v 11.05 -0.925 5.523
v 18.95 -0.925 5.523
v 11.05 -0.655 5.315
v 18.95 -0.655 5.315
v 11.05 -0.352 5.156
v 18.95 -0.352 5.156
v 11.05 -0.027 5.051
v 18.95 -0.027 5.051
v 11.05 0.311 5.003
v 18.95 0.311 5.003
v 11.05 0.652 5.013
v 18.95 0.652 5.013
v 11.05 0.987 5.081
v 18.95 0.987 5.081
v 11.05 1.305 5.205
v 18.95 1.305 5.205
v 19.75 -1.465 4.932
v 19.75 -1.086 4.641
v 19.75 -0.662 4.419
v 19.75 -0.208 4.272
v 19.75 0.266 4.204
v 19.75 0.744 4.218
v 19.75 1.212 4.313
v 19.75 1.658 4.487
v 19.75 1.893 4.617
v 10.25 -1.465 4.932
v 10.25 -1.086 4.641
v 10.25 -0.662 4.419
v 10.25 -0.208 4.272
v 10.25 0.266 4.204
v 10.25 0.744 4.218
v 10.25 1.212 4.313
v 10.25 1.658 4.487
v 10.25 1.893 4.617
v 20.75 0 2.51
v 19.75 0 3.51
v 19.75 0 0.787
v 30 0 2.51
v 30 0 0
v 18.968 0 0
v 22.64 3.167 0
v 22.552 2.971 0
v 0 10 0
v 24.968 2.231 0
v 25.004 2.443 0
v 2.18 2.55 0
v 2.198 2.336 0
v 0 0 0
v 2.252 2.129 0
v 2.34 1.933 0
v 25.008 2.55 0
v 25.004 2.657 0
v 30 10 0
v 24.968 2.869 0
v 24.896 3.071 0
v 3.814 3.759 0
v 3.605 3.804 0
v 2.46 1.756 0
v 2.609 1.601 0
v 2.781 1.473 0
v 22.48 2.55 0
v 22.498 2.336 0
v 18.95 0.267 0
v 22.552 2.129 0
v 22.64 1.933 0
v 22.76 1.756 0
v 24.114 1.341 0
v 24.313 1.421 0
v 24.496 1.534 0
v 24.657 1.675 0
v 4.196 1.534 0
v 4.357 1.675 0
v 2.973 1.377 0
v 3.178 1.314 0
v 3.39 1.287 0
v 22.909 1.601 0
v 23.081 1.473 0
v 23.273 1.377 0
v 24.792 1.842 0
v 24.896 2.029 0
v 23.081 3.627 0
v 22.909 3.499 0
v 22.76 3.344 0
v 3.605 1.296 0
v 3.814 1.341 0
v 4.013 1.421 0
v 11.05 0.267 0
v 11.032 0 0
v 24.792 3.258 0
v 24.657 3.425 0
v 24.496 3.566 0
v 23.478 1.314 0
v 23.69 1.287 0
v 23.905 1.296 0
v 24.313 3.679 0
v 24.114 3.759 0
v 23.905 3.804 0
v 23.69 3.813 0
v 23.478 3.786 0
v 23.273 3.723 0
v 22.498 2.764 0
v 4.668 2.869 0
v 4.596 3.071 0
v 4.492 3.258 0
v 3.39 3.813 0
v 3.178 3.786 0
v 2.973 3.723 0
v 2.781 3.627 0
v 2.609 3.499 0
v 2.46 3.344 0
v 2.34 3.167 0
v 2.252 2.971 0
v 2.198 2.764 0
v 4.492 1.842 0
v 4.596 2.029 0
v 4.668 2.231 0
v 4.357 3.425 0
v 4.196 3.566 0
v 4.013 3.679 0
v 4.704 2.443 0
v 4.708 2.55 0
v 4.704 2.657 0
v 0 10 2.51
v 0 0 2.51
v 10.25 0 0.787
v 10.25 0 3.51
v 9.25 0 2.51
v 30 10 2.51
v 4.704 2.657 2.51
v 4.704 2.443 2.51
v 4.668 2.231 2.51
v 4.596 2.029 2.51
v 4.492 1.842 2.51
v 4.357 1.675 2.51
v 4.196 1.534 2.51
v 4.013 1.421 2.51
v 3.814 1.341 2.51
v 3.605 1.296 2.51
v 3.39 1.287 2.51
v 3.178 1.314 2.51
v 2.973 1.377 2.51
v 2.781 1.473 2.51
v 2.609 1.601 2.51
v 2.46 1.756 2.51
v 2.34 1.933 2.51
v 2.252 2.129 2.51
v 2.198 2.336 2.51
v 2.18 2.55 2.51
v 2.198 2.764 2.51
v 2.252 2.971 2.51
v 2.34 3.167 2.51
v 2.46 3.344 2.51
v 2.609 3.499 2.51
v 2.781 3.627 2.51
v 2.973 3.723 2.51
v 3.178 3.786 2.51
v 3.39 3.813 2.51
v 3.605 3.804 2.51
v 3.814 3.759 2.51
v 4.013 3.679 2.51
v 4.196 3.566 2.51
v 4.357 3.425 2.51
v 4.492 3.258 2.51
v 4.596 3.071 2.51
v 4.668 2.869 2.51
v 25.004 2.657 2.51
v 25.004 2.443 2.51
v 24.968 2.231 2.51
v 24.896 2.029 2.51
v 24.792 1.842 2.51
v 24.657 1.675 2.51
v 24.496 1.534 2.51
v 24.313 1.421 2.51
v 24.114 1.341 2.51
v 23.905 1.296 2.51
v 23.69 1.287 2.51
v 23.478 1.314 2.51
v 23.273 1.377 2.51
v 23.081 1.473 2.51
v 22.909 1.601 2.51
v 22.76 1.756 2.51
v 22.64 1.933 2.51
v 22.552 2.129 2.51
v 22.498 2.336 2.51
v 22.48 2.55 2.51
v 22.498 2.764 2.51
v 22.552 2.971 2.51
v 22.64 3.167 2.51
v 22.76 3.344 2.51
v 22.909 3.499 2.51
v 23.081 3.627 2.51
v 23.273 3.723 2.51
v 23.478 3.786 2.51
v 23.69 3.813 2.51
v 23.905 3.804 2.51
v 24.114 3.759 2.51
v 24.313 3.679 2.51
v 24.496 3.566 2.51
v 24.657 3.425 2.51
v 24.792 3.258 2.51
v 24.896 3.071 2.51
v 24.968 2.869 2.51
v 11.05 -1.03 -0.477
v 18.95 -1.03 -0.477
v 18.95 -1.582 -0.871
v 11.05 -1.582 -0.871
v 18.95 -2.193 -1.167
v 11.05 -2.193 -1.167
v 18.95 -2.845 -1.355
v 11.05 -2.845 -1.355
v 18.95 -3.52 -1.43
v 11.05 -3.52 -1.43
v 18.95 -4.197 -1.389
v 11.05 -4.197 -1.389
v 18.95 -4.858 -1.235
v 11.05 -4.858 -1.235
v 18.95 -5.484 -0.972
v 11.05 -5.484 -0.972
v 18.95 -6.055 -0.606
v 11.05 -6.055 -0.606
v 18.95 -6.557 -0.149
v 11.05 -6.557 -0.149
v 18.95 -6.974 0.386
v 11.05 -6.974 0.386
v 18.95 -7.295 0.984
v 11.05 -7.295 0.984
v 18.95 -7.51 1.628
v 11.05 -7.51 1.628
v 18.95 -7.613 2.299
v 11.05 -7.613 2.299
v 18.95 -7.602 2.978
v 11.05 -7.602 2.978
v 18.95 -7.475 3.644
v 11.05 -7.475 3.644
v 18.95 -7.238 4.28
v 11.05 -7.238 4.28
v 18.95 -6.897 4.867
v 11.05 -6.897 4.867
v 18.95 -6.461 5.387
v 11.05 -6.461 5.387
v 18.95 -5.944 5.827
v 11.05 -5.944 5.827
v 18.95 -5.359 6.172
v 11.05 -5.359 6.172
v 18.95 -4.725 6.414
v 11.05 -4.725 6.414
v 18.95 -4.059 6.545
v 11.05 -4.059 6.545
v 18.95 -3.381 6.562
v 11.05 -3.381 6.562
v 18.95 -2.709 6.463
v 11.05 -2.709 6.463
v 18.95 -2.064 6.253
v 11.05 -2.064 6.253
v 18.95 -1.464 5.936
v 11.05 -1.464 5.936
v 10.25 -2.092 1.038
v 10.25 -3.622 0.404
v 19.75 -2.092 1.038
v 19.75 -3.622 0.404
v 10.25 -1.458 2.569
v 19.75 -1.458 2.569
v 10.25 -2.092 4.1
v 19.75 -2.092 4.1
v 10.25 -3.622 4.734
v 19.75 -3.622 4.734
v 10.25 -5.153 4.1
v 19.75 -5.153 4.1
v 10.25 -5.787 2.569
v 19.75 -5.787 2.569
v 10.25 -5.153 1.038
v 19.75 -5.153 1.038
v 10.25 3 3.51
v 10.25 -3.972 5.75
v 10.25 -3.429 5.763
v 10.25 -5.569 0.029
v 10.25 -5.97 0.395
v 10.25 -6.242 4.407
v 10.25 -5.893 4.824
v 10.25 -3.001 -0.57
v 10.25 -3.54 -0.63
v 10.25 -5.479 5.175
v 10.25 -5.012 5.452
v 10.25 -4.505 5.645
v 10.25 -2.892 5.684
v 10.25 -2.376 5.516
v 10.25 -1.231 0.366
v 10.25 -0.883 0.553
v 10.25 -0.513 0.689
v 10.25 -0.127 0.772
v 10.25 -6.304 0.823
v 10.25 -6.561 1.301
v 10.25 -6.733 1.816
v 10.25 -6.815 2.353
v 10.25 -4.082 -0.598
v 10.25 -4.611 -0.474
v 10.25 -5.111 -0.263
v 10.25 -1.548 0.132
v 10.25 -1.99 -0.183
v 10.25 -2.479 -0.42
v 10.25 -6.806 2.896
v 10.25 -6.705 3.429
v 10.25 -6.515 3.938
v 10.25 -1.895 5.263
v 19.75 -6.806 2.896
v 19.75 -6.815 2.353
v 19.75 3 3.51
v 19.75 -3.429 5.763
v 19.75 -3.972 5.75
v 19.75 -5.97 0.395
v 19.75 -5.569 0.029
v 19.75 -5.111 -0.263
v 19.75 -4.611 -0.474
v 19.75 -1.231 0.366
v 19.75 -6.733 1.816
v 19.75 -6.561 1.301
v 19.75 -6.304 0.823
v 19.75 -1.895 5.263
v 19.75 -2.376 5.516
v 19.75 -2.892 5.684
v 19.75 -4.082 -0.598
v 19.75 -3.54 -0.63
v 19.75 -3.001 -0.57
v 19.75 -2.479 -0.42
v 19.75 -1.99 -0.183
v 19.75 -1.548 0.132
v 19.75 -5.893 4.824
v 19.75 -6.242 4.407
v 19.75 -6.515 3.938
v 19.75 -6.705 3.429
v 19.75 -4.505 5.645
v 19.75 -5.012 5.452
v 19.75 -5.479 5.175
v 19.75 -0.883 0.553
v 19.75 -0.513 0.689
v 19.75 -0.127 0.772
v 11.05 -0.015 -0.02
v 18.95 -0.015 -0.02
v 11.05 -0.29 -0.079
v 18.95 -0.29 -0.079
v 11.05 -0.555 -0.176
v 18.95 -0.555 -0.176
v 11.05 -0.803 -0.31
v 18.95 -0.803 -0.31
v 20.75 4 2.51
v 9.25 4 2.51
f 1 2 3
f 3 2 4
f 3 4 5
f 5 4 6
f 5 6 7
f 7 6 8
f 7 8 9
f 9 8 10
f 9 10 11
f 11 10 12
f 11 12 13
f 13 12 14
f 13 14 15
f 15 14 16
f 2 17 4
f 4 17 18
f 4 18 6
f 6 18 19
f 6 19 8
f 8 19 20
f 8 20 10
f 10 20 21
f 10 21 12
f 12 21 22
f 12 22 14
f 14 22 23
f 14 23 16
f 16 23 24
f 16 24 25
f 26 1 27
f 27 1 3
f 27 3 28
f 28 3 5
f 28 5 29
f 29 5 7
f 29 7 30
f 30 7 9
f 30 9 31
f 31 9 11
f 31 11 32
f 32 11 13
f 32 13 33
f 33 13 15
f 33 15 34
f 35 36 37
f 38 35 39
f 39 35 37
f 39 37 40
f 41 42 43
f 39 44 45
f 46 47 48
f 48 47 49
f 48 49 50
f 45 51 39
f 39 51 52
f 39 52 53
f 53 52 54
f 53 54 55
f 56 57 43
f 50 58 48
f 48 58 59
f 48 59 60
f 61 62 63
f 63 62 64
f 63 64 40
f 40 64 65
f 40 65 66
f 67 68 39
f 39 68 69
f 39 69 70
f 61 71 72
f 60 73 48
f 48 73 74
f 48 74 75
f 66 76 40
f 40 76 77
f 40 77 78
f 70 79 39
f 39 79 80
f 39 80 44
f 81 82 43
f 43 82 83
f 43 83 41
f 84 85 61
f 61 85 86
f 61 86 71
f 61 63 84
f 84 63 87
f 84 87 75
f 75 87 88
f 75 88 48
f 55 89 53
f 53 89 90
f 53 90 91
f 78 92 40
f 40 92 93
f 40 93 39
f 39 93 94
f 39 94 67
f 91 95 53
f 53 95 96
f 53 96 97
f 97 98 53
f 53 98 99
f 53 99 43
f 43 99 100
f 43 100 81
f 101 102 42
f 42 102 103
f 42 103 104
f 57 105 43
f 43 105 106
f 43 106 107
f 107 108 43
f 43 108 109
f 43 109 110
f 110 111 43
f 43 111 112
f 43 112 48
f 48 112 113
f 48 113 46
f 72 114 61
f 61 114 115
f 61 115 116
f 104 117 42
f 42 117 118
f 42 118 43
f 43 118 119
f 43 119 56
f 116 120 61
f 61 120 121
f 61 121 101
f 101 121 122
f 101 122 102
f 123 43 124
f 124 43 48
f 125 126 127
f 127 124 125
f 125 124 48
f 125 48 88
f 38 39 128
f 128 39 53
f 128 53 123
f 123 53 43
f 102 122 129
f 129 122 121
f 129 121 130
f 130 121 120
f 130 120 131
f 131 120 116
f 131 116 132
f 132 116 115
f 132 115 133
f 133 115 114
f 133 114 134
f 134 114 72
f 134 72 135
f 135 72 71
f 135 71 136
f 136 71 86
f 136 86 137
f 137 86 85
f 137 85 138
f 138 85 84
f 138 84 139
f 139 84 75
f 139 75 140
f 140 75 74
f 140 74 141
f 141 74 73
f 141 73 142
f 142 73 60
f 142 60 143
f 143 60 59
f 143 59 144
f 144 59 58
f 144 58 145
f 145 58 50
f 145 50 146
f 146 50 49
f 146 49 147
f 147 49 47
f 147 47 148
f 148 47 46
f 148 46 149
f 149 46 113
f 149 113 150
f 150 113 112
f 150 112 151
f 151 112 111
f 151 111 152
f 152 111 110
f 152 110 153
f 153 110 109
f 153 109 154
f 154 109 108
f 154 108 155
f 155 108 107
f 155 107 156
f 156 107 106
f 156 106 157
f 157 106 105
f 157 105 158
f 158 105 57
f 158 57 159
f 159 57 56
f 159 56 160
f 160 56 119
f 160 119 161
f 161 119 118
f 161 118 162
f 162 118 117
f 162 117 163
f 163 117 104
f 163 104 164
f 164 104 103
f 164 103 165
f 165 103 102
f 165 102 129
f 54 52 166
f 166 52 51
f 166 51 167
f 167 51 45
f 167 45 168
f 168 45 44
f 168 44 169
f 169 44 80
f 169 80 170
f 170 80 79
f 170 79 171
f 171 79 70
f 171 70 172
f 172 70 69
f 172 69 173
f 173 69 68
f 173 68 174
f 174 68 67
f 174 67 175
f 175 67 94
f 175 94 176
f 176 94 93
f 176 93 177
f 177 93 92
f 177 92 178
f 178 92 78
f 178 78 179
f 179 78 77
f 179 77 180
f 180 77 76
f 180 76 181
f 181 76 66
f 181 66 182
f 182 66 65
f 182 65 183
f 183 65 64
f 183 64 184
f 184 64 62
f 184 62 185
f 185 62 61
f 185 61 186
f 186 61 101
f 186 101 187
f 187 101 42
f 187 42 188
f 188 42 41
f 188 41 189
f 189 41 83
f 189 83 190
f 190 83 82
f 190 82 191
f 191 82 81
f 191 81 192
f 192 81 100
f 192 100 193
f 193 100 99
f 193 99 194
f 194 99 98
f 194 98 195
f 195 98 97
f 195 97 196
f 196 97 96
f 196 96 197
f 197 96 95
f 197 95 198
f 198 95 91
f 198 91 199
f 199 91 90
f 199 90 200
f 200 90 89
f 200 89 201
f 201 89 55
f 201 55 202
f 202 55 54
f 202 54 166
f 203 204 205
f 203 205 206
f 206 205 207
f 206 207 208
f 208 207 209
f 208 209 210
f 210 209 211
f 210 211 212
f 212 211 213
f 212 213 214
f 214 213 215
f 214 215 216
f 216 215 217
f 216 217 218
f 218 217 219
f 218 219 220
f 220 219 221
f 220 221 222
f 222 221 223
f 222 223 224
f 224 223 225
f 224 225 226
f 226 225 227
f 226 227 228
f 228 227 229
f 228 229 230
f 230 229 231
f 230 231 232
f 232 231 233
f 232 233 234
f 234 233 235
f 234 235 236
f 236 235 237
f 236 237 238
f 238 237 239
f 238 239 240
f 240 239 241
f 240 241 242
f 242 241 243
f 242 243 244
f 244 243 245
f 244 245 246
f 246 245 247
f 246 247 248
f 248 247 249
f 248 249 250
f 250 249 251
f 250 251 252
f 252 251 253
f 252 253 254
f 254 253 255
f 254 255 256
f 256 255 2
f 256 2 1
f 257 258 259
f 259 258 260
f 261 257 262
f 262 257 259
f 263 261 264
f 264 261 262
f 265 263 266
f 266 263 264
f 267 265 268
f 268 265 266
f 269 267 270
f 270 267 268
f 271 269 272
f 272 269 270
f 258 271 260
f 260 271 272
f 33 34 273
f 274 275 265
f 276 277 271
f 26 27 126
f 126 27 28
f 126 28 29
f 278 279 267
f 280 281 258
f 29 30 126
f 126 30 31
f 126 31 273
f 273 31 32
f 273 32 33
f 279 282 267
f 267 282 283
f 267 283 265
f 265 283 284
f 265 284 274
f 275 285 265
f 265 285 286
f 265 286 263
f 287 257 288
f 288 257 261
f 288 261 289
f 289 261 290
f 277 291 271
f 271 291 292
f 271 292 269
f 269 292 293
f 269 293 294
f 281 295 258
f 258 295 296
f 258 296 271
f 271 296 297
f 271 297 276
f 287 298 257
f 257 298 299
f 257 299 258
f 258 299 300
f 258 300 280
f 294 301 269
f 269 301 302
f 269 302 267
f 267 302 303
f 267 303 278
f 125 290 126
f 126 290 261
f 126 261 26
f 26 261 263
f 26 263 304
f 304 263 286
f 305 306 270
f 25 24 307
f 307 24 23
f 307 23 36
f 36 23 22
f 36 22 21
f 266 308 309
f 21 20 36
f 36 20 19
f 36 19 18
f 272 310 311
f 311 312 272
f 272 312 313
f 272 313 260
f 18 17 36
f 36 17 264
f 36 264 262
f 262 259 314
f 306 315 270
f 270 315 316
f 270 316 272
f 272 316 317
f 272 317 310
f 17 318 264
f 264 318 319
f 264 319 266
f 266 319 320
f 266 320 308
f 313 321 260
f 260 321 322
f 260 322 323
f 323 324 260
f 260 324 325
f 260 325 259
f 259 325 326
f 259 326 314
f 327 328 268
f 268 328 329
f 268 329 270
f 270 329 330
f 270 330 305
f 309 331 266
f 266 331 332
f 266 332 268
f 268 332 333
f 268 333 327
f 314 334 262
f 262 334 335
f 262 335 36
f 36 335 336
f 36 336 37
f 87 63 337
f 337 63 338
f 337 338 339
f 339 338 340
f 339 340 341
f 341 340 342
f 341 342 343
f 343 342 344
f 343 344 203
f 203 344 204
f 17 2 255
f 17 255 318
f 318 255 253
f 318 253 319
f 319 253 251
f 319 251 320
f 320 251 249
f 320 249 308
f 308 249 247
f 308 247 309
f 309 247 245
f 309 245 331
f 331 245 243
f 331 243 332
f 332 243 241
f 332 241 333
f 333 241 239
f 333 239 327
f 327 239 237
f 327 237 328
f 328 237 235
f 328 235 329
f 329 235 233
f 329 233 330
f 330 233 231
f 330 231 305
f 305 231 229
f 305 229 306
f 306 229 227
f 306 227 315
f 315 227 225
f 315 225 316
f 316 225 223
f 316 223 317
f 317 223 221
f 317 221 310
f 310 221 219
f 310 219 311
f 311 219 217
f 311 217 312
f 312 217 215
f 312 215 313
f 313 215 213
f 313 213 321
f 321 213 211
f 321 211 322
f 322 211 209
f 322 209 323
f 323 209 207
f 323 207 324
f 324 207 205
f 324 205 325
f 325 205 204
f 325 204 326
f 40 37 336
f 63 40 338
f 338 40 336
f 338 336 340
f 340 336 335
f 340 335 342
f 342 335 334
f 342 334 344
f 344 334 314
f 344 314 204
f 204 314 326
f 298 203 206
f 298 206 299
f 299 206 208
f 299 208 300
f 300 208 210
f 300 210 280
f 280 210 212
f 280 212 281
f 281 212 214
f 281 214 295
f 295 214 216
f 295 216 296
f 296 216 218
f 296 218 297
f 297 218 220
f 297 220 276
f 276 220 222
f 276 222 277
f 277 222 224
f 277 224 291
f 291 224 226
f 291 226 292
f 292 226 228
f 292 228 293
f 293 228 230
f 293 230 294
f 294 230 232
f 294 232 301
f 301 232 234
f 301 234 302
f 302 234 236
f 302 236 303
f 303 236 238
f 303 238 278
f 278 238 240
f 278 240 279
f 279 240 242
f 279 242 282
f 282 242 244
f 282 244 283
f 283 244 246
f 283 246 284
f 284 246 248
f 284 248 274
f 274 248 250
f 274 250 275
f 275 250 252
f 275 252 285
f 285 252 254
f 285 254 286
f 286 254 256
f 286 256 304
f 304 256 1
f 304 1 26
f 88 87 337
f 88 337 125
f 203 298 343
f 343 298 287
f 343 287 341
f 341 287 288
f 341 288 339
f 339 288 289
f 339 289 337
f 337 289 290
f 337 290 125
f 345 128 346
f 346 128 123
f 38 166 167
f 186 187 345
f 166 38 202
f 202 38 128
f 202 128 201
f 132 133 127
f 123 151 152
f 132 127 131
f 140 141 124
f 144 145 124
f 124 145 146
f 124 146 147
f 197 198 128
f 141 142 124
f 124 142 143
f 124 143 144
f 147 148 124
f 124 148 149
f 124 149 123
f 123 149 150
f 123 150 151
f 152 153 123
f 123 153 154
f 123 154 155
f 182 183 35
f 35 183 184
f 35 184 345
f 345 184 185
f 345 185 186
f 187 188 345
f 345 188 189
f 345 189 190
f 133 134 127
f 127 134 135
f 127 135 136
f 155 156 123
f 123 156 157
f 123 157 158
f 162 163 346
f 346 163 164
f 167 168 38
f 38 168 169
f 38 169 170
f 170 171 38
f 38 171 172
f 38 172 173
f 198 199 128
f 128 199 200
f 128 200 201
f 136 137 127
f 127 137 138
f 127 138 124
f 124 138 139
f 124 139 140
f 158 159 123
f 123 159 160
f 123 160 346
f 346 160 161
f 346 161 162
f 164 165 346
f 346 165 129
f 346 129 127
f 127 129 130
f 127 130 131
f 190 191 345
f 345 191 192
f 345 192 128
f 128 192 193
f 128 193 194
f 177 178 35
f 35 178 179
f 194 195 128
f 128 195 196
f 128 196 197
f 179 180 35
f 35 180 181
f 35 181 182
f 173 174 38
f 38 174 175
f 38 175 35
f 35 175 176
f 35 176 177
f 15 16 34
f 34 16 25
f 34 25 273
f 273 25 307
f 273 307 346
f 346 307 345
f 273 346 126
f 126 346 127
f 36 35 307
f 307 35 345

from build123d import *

# Parameters (mm, degrees)
SKETCH1_W           = 30
SKETCH1_H           = 10
SKETCH1_R           = 1.264247842
BOSS_EXTRUDE1_DEPTH = 5
SKETCH3_R           = 4
BOSS_EXTRUDE2_DEPTH = 4.75
FILLET1_R           = 2
FILLET2_R           = 2
CHAMFER1_SIZE       = 0.8
CUT_EXTRUDE3_REACH  = 34.298
SKETCH6_W           = 3.842122027
SKETCH6_H           = 10
CHAMFER4_START      = 10.25
CHAMFER4_DEPTH      = 9.5
CHAMFER5_SIZE       = 1


with BuildPart() as part:
    # Sketch1 → Boss-Extrude1 (new body)
    with BuildSketch(Plane.XY):
        with Locations((15, 5)):
            Rectangle(SKETCH1_W, SKETCH1_H)
        with Locations((3.444076375, 2.55)):
            Circle(SKETCH1_R, mode=Mode.SUBTRACT)
        with Locations((23.744076375, 2.55)):
            Circle(SKETCH1_R, mode=Mode.SUBTRACT)
    extrude(amount=BOSS_EXTRUDE1_DEPTH)

    # Sketch3 → Boss-Extrude2 (add, symmetric)
    with BuildSketch(Plane.ZY.offset(-15)):
        with Locations((2.568998912, -3.622468738)):
            Circle(SKETCH3_R)
        Polygon((0.404214511, -3.622468738), (1.038265182, -5.153202468), (2.568998912, -5.787253139), (4.099732641, -5.153202468), (4.733783312, -3.622468738), (4.099732641, -2.091735009), (2.568998912, -1.457684338), (1.038265182, -2.091735009), align=None, mode=Mode.SUBTRACT)
    extrude(amount=BOSS_EXTRUDE2_DEPTH, both=True)

    # Fillet1
    # the kernel refuses this fillet: 2 mm, written as the material it adds along each edge
    with BuildSketch(Plane(origin=(19.75, 0, 0.872614451), x_dir=(0, 0, -1), z_dir=(-1, 0, 0))) as fillet1_piece_1:
        with BuildLine():
            CenterArc((2.851261839, -0.291469576), FILLET1_R, 139.283020083, 32.337148469)
            ThreePointArc((1.335379739, 1.013176529), (0.721358104, 0.435852839), (0, 0))
            Line((0, 0), (0.872614451, 0))
        make_face()
    extrude(amount=9.5)
    with BuildSketch(Plane(origin=(19.75, 0, 4.265383373), x_dir=(0, 0, 1), z_dir=(-1, 0, 0))) as fillet1_piece_2:
        with BuildLine():
            CenterArc((2.674069858, 0.488386288), FILLET1_R, 194.13415607, 29.112659272)
            ThreePointArc((1.217251752, -0.881898721), (0.650423795, -0.383257259), (0, 0))
            Line((0, 0), (0.734616627, 0))
        make_face()
    extrude(amount=9.5)

    # Fillet2
    # the kernel refuses this fillet: 2 mm, written as the material it adds along each edge
    with BuildSketch(Plane(origin=(19.75, 0, 0), x_dir=(0, 1, 0), z_dir=(-1, 0, 0))) as fillet2_piece_1:
        with BuildLine():
            CenterArc((0.266521997, 2), FILLET2_R, 229.596597584, 40.403402416)
            Line((-1.029808248, 0.477000363), (-1.159441272, 0.324700399))
            ThreePointArc((-1.159441272, 0.324700399), (-1.143641139, 0.311177078), (-0.029146958, -0.197864739))
            Line((-0.029146958, -0.197864739), (0, -0.2))
            Line((0, -0.2), (0.266521997, -0.2))
            Line((0.266521997, -0.2), (0.266521997, 0))
        make_face()
    extrude(amount=9.5)
    with BuildSketch(Plane(origin=(19.75, 0, 5), x_dir=(0, -0.870596677984774, 0.491997382393317), z_dir=(-1, 0, 0))) as fillet2_piece_2:
        with BuildLine():
            CenterArc((0.615688034, 1.949333304), FILLET2_R, 240.528051524, 42.396189725)
            Line((-0.368306731, 0.208139948), (-0.466706207, 0.034020613))
            Line((-0.466706207, 0.034020613), (-0.098399476, -0.174119336))
            Line((-0.098399476, -0.174119336), (-0.052901843, -0.192876631))
            ThreePointArc((-0.052901843, -0.192876631), (1.052854803, -0.20795909), (1.10774555, -0.19493333))
            Line((1.10774555, -0.19493333), (1.063013048, 0))
        make_face()
    extrude(amount=9.5)

    # Chamfer1
    # the kernel refuses this chamfer: 0.8 mm, written as the material it takes off along each edge
    with BuildSketch(Plane(origin=(19.75, 0.266521997, -2), x_dir=(0, -0.648165122631187, 0.7614998186503384), z_dir=(0, -0.7614998186503384, -0.648165122631187))) as chamfer1_piece_1_section:
        Polygon((2, CHAMFER1_SIZE), (2 + CHAMFER1_SIZE, 0), (2, 0), align=None)
    chamfer1_piece_1 = revolve(axis=Axis((19.75, 0.266521997, -2), (-1, 0, 0)), revolution_arc=99.346805501, mode=Mode.PRIVATE)
    chamfer1_piece_1 = split(chamfer1_piece_1, bisect_by=Plane(origin=(19.75, 0, -2), z_dir=(0, -1, 0)), keep=Keep.TOP, mode=Mode.PRIVATE)
    add(chamfer1_piece_1, mode=Mode.SUBTRACT)
    with BuildSketch(Plane(origin=(19.75, 0.266521997, -2), x_dir=(0, -0.648165122631187, 0.7614998186503384), z_dir=(0, -0.7614998186503384, -0.648165122631187))) as chamfer1_piece_2_section:
        Polygon((2, CHAMFER1_SIZE), (2 + CHAMFER1_SIZE, 0), (2, 0), align=None)
    chamfer1_piece_2 = revolve(axis=Axis((19.75, 0.266521997, -2), (-1, 0, 0)), revolution_arc=99.346805501, mode=Mode.PRIVATE)
    chamfer1_piece_2 = split(chamfer1_piece_2, bisect_by=Plane(origin=(19.75, 0.266521997, 0), z_dir=(0, 0, -1)), keep=Keep.TOP, mode=Mode.PRIVATE)
    add(chamfer1_piece_2, mode=Mode.SUBTRACT)
    with BuildSketch(Plane(origin=(19.75, 0.423050926, 7), x_dir=(0, 0.8566624684959867, -0.515877325602088), z_dir=(0, 0.515877325602088, 0.8566624684959867))) as chamfer1_piece_3_section:
        Polygon((2, CHAMFER1_SIZE), (2 + CHAMFER1_SIZE, 0), (2, 0), align=None)
    chamfer1_piece_3 = revolve(axis=Axis((19.75, 0.423050926, 7), (-1, 0, 0)), revolution_arc=101.340075028, mode=Mode.PRIVATE)
    chamfer1_piece_3 = split(chamfer1_piece_3, bisect_by=Plane(origin=(19.75, 0, 7), z_dir=(0, -1, 0)), keep=Keep.TOP, mode=Mode.PRIVATE)
    add(chamfer1_piece_3, mode=Mode.SUBTRACT)
    with BuildSketch(Plane(origin=(19.75, 0.423050926, 7), x_dir=(0, 0.8566624684959867, -0.515877325602088), z_dir=(0, 0.515877325602088, 0.8566624684959867))) as chamfer1_piece_4_section:
        Polygon((2, CHAMFER1_SIZE), (2 + CHAMFER1_SIZE, 0), (2, 0), align=None)
    chamfer1_piece_4 = revolve(axis=Axis((19.75, 0.423050926, 7), (-1, 0, 0)), revolution_arc=101.340075028, mode=Mode.PRIVATE)
    chamfer1_piece_4 = split(chamfer1_piece_4, bisect_by=Plane(origin=(19.75, 0.423050926, 5), z_dir=(0, 0, 1)), keep=Keep.TOP, mode=Mode.PRIVATE)
    add(chamfer1_piece_4, mode=Mode.SUBTRACT)
    with BuildSketch(Plane(origin=(19.75, -3.622468738, 2.568998912), x_dir=(0, 0.6742532774459821, 0.7385001813495726), z_dir=(0, 0.7385001813495726, -0.6742532774459821))) as chamfer1_piece_5:
        Polygon((4 - CHAMFER1_SIZE, 0), (4, -CHAMFER1_SIZE), (4, 0), align=None)
    revolve(axis=Axis((19.75, -3.622468738, 2.568998912), (1, 0, 0)), revolution_arc=262.799592141, mode=Mode.SUBTRACT)
    with BuildSketch(Plane(origin=(10.25, 0.266521997, -2), x_dir=(0, -0.648165122631187, 0.7614998186503384), z_dir=(0, -0.7614998186503384, -0.648165122631187))) as chamfer1_piece_6_section:
        Polygon((2 + CHAMFER1_SIZE, 0), (2, -CHAMFER1_SIZE), (2, 0), align=None)
    chamfer1_piece_6 = revolve(axis=Axis((10.25, 0.266521997, -2), (-1, 0, 0)), revolution_arc=99.346805501, mode=Mode.PRIVATE)
    chamfer1_piece_6 = split(chamfer1_piece_6, bisect_by=Plane(origin=(10.25, 0, -2), z_dir=(0, -1, 0)), keep=Keep.TOP, mode=Mode.PRIVATE)
    add(chamfer1_piece_6, mode=Mode.SUBTRACT)
    with BuildSketch(Plane(origin=(10.25, 0.266521997, -2), x_dir=(0, -0.648165122631187, 0.7614998186503384), z_dir=(0, -0.7614998186503384, -0.648165122631187))) as chamfer1_piece_7_section:
        Polygon((2 + CHAMFER1_SIZE, 0), (2, -CHAMFER1_SIZE), (2, 0), align=None)
    chamfer1_piece_7 = revolve(axis=Axis((10.25, 0.266521997, -2), (-1, 0, 0)), revolution_arc=99.346805501, mode=Mode.PRIVATE)
    chamfer1_piece_7 = split(chamfer1_piece_7, bisect_by=Plane(origin=(10.25, 0.266521997, 0), z_dir=(0, 0, -1)), keep=Keep.TOP, mode=Mode.PRIVATE)
    add(chamfer1_piece_7, mode=Mode.SUBTRACT)
    with BuildSketch(Plane(origin=(10.25, 0.423050926, 7), x_dir=(0, 0.8566624684959867, -0.515877325602088), z_dir=(0, 0.515877325602088, 0.8566624684959867))) as chamfer1_piece_8_section:
        Polygon((2, -CHAMFER1_SIZE), (2 + CHAMFER1_SIZE, 0), (2, 0), align=None)
    chamfer1_piece_8 = revolve(axis=Axis((10.25, 0.423050926, 7), (-1, 0, 0)), revolution_arc=101.340075028, mode=Mode.PRIVATE)
    chamfer1_piece_8 = split(chamfer1_piece_8, bisect_by=Plane(origin=(10.25, 0, 7), z_dir=(0, -1, 0)), keep=Keep.TOP, mode=Mode.PRIVATE)
    add(chamfer1_piece_8, mode=Mode.SUBTRACT)
    with BuildSketch(Plane(origin=(10.25, 0.423050926, 7), x_dir=(0, 0.8566624684959867, -0.515877325602088), z_dir=(0, 0.515877325602088, 0.8566624684959867))) as chamfer1_piece_9_section:
        Polygon((2, -CHAMFER1_SIZE), (2 + CHAMFER1_SIZE, 0), (2, 0), align=None)
    chamfer1_piece_9 = revolve(axis=Axis((10.25, 0.423050926, 7), (-1, 0, 0)), revolution_arc=101.340075028, mode=Mode.PRIVATE)
    chamfer1_piece_9 = split(chamfer1_piece_9, bisect_by=Plane(origin=(10.25, 0.423050926, 5), z_dir=(0, 0, 1)), keep=Keep.TOP, mode=Mode.PRIVATE)
    add(chamfer1_piece_9, mode=Mode.SUBTRACT)
    with BuildSketch(Plane(origin=(10.25, -3.622468738, 2.568998912), x_dir=(0, 0.6742532774459821, 0.7385001813495726), z_dir=(0, 0.7385001813495726, -0.6742532774459821))) as chamfer1_piece_10:
        Polygon((4 - CHAMFER1_SIZE, 0), (4, CHAMFER1_SIZE), (4, 0), align=None)
    revolve(axis=Axis((10.25, -3.622468738, 2.568998912), (1, 0, 0)), revolution_arc=262.799592141, mode=Mode.SUBTRACT)

    # Cut-Extrude3: up to this face of the body (flat: up to its plane)
    cut_extrude3_end = Plane(part.part.faces().sort_by_distance((30, 5, 2.5))[0])
    # Sketch6 → Cut-Extrude3 (cut, up to the picked face)
    with BuildSketch(Plane(origin=(0, 0, 0), x_dir=(0, 0, -1), z_dir=(1, 0, 0)), mode=Mode.PRIVATE) as cut_extrude3_sk1:
        with Locations((-4.430776166, 5)):
            Rectangle(SKETCH6_W, SKETCH6_H)
    cut_extrude3_tool1 = split(extrude(cut_extrude3_sk1.sketch, amount=CUT_EXTRUDE3_REACH, mode=Mode.PRIVATE), bisect_by=cut_extrude3_end, keep=Keep.BOTH, mode=Mode.PRIVATE)
    add(cut_extrude3_tool1.solids().sort_by(Axis((0, 5, 4.430776), (1, 0, 0)))[0], mode=Mode.SUBTRACT)

    # Chamfer4: read off the stored shape, not the designer's step
    # Chamfer4 outline → Chamfer4 (add)
    with BuildSketch(Plane.YZ.offset(CHAMFER4_START)):
        with BuildLine():
            ThreePointArc((1.304835295, 5.204879857), (0.665907086, 5.014799535), (0, 5.045255026))
            Line((0, 5.045255026), (0, 2.509715152))
            Line((0, 2.509715152), (4, 2.509715152))
            Line((4, 2.509715152), (1.304835295, 5.204879857))
        make_face()
    extrude(amount=CHAMFER4_DEPTH)

    # Chamfer4 2 outline → Chamfer4 2 (revolve, cut)
    with BuildSketch(Plane(origin=(0, 0.423050926, 7), x_dir=(0, 1, 0), z_dir=(0, 0, -1))):
        Polygon((2, 19.75), (2, 18.95), (2.8, 19.75), align=None)
        Polygon((2.8, 10.25), (2, 11.05), (2, 10.25), align=None)
    revolve(axis=Axis((0, 0.423050926, 7), (1, 0, 0)), mode=Mode.SUBTRACT)

    # Chamfer5
    chamfer5_edges = [part.edges().sort_by_distance(p)[0] for p in [
        (19.75, 2, 2.509715152),
        (10.25, 2, 2.509715152),
    ]]
    chamfer(chamfer5_edges, length=CHAMFER5_SIZE)


solid = part.part
